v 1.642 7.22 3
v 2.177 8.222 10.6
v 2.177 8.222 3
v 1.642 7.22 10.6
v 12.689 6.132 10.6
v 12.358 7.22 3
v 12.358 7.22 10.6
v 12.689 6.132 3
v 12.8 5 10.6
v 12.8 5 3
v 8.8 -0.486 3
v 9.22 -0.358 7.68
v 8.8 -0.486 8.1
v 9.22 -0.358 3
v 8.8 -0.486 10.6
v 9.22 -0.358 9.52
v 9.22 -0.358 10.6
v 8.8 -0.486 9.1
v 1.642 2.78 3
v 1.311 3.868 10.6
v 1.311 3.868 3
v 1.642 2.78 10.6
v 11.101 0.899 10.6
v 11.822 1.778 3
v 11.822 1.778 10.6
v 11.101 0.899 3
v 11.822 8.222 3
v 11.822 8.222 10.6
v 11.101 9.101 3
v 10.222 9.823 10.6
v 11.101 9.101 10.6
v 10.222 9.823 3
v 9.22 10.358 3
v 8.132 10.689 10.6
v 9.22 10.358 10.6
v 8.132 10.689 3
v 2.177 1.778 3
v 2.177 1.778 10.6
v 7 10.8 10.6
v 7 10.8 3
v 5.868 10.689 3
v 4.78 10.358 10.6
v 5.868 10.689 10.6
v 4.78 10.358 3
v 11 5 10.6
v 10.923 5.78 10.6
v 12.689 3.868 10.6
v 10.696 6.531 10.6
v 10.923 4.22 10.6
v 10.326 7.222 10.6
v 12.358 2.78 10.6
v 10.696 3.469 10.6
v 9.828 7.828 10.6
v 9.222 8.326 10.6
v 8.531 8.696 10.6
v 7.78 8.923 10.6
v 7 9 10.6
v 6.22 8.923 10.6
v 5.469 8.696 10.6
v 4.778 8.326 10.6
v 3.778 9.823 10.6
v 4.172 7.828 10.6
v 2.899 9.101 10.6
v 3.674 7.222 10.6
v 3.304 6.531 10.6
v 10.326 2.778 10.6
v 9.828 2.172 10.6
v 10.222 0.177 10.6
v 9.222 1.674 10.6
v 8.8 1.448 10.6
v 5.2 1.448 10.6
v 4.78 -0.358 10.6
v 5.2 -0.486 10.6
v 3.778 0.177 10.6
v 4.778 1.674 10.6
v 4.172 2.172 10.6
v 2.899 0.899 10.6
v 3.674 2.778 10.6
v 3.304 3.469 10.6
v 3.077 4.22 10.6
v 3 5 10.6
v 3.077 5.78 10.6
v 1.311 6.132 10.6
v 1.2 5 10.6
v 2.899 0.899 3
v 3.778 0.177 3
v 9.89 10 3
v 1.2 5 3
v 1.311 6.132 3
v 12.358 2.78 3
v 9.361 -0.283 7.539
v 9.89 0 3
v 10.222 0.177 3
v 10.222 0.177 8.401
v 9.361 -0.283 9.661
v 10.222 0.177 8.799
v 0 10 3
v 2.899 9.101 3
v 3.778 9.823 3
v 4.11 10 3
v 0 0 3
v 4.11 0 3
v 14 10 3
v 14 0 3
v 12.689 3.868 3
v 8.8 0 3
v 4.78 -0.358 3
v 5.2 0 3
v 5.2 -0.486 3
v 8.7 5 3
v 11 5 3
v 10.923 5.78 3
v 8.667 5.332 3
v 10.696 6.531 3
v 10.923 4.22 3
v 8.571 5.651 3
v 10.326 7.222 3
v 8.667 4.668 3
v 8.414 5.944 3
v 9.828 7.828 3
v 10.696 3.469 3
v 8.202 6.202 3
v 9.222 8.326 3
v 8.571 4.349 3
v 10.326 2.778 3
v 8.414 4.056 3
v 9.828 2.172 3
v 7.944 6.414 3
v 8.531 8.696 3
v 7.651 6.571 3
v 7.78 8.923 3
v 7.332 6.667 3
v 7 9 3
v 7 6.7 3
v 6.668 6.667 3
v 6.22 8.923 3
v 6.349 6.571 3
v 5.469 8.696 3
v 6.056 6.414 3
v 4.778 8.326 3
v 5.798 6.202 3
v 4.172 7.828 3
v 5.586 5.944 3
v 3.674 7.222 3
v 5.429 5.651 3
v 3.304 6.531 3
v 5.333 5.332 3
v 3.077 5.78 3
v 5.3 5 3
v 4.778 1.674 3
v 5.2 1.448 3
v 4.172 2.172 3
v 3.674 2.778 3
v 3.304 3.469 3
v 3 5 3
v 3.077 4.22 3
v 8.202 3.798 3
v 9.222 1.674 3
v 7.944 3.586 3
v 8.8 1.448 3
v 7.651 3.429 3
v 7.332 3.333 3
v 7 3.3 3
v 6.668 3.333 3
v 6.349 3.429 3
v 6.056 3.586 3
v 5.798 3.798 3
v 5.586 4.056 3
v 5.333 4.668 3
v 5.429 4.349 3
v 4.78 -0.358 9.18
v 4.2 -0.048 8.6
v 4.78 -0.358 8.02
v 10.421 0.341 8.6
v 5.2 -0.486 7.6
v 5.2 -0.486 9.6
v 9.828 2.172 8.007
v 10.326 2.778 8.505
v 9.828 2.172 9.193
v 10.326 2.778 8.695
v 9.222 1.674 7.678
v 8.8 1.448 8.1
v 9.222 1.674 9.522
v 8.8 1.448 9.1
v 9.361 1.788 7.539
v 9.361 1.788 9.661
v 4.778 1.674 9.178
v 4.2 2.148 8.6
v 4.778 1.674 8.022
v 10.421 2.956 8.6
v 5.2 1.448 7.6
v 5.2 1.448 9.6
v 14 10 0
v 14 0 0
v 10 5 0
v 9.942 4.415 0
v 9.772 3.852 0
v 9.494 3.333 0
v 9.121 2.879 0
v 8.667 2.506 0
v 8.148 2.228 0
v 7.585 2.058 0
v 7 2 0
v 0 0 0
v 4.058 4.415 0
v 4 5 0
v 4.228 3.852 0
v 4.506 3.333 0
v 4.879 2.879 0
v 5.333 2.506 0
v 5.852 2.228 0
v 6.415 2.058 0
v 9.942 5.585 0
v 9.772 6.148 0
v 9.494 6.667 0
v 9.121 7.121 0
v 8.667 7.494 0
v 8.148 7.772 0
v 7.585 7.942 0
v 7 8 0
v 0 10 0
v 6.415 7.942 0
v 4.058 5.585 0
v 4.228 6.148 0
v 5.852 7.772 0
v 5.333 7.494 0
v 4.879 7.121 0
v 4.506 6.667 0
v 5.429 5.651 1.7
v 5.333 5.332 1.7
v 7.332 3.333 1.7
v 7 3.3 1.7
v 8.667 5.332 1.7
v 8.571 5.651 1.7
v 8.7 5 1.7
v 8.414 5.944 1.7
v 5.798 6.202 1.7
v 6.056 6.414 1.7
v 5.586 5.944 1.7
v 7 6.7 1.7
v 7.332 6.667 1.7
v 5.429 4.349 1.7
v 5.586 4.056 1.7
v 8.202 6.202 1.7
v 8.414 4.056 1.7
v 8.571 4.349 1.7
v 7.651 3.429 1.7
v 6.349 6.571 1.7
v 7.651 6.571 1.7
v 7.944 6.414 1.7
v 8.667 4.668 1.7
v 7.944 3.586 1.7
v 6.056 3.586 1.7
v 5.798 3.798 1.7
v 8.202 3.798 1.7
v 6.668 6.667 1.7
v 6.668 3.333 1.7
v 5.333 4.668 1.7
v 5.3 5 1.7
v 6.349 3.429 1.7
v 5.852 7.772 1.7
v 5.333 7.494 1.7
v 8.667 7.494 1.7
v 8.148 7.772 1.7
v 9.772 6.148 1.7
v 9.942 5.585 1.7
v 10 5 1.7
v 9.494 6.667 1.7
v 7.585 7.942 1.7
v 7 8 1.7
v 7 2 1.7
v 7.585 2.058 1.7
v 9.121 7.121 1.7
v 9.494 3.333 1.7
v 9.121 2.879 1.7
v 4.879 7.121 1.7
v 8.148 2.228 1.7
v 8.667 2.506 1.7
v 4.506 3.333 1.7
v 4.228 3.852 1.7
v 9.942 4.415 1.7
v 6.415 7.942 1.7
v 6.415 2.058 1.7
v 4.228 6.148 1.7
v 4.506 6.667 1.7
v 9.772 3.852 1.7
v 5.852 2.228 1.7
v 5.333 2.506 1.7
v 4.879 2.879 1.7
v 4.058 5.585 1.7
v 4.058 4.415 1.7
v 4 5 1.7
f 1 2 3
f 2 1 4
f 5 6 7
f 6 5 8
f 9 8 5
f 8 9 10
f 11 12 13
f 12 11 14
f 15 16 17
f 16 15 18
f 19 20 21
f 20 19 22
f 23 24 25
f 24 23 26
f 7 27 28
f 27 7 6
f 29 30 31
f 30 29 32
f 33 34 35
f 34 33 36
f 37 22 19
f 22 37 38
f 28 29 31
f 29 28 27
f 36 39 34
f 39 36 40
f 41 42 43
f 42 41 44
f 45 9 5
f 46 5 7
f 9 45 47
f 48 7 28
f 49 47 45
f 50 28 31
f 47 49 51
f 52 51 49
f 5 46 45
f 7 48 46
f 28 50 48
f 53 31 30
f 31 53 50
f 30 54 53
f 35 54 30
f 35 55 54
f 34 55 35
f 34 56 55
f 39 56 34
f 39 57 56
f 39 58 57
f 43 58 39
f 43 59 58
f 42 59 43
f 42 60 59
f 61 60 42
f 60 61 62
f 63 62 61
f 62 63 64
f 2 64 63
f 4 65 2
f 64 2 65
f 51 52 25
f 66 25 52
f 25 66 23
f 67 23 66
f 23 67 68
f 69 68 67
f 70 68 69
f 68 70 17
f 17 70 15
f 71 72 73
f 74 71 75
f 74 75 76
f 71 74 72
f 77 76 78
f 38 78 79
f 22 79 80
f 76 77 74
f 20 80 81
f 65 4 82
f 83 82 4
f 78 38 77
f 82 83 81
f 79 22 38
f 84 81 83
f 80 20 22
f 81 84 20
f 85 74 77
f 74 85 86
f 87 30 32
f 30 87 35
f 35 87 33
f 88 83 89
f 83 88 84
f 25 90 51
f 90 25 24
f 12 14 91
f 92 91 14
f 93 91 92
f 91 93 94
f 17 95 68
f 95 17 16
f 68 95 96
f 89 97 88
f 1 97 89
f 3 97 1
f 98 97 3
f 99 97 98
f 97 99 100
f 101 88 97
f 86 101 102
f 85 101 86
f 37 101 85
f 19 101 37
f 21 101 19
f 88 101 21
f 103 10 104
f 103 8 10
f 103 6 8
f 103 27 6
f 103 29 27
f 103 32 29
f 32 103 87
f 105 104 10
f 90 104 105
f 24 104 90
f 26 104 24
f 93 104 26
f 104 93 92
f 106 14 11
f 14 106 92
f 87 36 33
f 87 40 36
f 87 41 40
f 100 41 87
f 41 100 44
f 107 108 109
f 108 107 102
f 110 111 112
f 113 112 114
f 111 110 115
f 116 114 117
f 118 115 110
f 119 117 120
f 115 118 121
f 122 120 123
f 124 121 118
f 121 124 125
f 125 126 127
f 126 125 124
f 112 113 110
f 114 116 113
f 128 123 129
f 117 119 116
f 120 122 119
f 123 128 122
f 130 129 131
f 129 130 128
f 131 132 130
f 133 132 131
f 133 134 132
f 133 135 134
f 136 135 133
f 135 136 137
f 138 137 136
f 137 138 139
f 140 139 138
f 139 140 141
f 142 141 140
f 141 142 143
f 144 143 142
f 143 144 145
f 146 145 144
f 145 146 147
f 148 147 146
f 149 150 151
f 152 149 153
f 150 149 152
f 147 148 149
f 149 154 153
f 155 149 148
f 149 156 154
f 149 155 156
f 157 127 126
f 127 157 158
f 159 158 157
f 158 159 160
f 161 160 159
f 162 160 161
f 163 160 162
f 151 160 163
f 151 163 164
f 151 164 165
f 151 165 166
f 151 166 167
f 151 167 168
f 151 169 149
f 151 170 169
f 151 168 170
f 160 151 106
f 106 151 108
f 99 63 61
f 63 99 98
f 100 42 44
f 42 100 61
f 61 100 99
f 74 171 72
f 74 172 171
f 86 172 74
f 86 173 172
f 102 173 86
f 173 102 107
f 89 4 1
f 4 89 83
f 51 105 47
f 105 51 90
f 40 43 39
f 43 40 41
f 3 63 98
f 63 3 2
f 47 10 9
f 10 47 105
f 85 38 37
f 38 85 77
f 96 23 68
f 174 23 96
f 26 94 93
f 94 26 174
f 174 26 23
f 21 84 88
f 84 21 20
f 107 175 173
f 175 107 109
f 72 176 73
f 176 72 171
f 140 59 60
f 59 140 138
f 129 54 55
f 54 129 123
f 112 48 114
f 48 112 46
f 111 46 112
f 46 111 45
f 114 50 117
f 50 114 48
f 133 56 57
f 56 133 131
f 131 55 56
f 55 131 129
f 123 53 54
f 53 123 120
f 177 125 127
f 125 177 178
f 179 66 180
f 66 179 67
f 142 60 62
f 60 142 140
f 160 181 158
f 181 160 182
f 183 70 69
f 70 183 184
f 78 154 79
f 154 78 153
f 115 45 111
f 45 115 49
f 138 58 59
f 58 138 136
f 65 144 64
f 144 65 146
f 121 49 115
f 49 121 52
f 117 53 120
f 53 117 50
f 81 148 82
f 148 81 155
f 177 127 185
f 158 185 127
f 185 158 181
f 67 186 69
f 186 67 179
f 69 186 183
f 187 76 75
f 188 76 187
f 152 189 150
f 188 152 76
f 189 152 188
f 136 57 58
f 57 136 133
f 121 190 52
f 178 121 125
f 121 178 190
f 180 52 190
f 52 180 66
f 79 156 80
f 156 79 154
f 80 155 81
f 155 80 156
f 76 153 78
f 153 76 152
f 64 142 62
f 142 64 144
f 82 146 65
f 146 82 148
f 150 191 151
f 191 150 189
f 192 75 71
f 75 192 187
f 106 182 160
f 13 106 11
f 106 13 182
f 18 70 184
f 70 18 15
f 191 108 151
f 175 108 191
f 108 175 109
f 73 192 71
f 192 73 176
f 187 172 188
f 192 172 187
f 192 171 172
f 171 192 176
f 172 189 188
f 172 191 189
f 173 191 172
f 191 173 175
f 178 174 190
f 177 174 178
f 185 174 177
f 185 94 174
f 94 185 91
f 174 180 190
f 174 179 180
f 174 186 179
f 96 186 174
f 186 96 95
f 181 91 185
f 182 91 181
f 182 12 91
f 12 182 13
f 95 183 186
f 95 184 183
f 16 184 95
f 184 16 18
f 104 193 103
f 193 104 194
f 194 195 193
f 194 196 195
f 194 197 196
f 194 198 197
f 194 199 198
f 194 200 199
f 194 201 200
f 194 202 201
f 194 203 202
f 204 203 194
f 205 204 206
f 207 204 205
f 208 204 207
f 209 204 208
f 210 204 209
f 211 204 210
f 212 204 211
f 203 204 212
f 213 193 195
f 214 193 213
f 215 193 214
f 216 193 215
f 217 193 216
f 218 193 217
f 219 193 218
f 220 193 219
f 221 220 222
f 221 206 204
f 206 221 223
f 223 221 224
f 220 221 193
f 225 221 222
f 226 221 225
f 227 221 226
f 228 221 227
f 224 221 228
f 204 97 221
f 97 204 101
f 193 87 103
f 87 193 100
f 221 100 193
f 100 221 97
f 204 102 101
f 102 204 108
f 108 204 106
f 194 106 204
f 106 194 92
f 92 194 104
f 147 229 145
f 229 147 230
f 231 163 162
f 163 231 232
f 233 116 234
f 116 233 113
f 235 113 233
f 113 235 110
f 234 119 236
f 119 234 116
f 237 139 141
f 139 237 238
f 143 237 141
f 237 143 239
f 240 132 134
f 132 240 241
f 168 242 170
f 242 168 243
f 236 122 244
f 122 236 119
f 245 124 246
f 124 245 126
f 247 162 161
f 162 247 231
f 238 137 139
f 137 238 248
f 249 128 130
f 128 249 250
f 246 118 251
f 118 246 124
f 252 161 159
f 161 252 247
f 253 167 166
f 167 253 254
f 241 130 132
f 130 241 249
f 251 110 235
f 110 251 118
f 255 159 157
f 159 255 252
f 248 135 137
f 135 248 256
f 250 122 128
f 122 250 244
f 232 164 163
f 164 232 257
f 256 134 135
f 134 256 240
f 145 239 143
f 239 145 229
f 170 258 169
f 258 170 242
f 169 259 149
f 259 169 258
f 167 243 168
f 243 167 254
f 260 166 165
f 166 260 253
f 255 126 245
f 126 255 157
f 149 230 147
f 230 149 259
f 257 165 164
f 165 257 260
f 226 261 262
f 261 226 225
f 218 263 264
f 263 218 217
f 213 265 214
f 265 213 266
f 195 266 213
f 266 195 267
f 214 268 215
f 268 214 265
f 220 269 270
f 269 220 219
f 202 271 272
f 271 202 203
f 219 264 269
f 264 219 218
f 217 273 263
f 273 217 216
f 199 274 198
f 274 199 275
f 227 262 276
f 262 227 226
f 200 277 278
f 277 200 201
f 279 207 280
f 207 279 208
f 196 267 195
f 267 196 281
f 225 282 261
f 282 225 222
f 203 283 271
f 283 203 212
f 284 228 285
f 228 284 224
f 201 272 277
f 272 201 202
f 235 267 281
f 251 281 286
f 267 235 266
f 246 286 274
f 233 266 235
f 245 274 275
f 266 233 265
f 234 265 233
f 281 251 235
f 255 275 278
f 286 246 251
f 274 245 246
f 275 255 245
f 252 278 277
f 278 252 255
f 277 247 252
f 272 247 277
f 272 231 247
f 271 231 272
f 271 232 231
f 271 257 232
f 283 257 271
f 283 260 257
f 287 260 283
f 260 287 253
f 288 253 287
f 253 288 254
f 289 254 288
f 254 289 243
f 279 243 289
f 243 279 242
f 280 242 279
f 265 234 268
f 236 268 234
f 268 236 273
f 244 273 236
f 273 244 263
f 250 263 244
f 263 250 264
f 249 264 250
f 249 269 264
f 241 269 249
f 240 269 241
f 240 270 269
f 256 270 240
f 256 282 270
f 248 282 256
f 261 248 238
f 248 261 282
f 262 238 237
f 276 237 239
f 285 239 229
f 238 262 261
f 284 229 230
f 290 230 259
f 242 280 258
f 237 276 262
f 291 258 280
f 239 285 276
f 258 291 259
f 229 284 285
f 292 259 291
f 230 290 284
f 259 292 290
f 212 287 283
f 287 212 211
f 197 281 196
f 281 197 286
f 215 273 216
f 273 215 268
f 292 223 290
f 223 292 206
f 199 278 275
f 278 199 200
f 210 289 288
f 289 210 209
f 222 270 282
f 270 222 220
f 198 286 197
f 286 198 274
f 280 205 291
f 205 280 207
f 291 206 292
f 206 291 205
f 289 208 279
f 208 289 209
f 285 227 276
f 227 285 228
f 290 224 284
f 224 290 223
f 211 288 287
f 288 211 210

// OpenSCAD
// ============================================================
//  MSE-6 — Wire Routing Clip  (print 6-8×)
//  Snap-over cable management clips that screw to the
//  Wave Rover expansion plate or shell interior.
//
//  Two variants controlled by WIRE_D:
//    small (4.0mm) : HC-SR04 4-wire bundle / single JST wire
//    large (8.0mm) : USB-serial cable to ESP32 / power wires
//
//  M3 screw mount, base 12×10mm
// ============================================================
$fn = 32;

WIRE_D = 8.0;   // change to 4.0 for small clip

// Clip dimensions
wire_d   = WIRE_D;
wall     = 1.8;
base_w   = 14.0;
base_d   = 10.0;
base_t   =  3.0;
arch_gap = wire_d * 0.45;   // snap opening (slightly less than radius)
m3_d     =  3.4;
m3_csink =  6.0;

// Arch dimensions
arch_od  = wire_d + wall*2;
arch_h   = arch_od / 2 + wall;

module wire_clip() {
    difference() {
        union() {
            // Base plate
            cube([base_w, base_d, base_t]);
            // Arch centred on base
            translate([base_w/2, base_d/2, base_t])
            difference() {
                // Full arch cylinder
                cylinder(d = arch_od, h = arch_h);
                // Inner bore
                translate([0, 0, -0.1])
                    cylinder(d = wire_d, h = arch_h + 0.2);
                // Snap gap (bottom opening for wire)
                translate([-arch_gap/2, -arch_od/2 - 0.1, -0.1])
                    cube([arch_gap, arch_od/2 + 0.2, arch_h + 0.2]);
                // Snap chamfer (makes wire snap in)
                translate([-arch_gap/2 - 1, -arch_od/2 - 0.1, arch_h - 2])
                    rotate([0, 45, 0])
                        cube([1.5, arch_od/2 + 0.2, 1.5]);
                translate([arch_gap/2 - 0.5, -arch_od/2 - 0.1, arch_h - 2])
                    rotate([0, 45, 0])
                        cube([1.5, arch_od/2 + 0.2, 1.5]);
            }
        }
        // M3 screw hole (centre of base)
        translate([base_w/2, base_d/2, -0.1]) {
            cylinder(d = m3_d, h = base_t + 0.2);
            cylinder(d = m3_csink, h = 1.8);
        }
    }
}

wire_clip();
